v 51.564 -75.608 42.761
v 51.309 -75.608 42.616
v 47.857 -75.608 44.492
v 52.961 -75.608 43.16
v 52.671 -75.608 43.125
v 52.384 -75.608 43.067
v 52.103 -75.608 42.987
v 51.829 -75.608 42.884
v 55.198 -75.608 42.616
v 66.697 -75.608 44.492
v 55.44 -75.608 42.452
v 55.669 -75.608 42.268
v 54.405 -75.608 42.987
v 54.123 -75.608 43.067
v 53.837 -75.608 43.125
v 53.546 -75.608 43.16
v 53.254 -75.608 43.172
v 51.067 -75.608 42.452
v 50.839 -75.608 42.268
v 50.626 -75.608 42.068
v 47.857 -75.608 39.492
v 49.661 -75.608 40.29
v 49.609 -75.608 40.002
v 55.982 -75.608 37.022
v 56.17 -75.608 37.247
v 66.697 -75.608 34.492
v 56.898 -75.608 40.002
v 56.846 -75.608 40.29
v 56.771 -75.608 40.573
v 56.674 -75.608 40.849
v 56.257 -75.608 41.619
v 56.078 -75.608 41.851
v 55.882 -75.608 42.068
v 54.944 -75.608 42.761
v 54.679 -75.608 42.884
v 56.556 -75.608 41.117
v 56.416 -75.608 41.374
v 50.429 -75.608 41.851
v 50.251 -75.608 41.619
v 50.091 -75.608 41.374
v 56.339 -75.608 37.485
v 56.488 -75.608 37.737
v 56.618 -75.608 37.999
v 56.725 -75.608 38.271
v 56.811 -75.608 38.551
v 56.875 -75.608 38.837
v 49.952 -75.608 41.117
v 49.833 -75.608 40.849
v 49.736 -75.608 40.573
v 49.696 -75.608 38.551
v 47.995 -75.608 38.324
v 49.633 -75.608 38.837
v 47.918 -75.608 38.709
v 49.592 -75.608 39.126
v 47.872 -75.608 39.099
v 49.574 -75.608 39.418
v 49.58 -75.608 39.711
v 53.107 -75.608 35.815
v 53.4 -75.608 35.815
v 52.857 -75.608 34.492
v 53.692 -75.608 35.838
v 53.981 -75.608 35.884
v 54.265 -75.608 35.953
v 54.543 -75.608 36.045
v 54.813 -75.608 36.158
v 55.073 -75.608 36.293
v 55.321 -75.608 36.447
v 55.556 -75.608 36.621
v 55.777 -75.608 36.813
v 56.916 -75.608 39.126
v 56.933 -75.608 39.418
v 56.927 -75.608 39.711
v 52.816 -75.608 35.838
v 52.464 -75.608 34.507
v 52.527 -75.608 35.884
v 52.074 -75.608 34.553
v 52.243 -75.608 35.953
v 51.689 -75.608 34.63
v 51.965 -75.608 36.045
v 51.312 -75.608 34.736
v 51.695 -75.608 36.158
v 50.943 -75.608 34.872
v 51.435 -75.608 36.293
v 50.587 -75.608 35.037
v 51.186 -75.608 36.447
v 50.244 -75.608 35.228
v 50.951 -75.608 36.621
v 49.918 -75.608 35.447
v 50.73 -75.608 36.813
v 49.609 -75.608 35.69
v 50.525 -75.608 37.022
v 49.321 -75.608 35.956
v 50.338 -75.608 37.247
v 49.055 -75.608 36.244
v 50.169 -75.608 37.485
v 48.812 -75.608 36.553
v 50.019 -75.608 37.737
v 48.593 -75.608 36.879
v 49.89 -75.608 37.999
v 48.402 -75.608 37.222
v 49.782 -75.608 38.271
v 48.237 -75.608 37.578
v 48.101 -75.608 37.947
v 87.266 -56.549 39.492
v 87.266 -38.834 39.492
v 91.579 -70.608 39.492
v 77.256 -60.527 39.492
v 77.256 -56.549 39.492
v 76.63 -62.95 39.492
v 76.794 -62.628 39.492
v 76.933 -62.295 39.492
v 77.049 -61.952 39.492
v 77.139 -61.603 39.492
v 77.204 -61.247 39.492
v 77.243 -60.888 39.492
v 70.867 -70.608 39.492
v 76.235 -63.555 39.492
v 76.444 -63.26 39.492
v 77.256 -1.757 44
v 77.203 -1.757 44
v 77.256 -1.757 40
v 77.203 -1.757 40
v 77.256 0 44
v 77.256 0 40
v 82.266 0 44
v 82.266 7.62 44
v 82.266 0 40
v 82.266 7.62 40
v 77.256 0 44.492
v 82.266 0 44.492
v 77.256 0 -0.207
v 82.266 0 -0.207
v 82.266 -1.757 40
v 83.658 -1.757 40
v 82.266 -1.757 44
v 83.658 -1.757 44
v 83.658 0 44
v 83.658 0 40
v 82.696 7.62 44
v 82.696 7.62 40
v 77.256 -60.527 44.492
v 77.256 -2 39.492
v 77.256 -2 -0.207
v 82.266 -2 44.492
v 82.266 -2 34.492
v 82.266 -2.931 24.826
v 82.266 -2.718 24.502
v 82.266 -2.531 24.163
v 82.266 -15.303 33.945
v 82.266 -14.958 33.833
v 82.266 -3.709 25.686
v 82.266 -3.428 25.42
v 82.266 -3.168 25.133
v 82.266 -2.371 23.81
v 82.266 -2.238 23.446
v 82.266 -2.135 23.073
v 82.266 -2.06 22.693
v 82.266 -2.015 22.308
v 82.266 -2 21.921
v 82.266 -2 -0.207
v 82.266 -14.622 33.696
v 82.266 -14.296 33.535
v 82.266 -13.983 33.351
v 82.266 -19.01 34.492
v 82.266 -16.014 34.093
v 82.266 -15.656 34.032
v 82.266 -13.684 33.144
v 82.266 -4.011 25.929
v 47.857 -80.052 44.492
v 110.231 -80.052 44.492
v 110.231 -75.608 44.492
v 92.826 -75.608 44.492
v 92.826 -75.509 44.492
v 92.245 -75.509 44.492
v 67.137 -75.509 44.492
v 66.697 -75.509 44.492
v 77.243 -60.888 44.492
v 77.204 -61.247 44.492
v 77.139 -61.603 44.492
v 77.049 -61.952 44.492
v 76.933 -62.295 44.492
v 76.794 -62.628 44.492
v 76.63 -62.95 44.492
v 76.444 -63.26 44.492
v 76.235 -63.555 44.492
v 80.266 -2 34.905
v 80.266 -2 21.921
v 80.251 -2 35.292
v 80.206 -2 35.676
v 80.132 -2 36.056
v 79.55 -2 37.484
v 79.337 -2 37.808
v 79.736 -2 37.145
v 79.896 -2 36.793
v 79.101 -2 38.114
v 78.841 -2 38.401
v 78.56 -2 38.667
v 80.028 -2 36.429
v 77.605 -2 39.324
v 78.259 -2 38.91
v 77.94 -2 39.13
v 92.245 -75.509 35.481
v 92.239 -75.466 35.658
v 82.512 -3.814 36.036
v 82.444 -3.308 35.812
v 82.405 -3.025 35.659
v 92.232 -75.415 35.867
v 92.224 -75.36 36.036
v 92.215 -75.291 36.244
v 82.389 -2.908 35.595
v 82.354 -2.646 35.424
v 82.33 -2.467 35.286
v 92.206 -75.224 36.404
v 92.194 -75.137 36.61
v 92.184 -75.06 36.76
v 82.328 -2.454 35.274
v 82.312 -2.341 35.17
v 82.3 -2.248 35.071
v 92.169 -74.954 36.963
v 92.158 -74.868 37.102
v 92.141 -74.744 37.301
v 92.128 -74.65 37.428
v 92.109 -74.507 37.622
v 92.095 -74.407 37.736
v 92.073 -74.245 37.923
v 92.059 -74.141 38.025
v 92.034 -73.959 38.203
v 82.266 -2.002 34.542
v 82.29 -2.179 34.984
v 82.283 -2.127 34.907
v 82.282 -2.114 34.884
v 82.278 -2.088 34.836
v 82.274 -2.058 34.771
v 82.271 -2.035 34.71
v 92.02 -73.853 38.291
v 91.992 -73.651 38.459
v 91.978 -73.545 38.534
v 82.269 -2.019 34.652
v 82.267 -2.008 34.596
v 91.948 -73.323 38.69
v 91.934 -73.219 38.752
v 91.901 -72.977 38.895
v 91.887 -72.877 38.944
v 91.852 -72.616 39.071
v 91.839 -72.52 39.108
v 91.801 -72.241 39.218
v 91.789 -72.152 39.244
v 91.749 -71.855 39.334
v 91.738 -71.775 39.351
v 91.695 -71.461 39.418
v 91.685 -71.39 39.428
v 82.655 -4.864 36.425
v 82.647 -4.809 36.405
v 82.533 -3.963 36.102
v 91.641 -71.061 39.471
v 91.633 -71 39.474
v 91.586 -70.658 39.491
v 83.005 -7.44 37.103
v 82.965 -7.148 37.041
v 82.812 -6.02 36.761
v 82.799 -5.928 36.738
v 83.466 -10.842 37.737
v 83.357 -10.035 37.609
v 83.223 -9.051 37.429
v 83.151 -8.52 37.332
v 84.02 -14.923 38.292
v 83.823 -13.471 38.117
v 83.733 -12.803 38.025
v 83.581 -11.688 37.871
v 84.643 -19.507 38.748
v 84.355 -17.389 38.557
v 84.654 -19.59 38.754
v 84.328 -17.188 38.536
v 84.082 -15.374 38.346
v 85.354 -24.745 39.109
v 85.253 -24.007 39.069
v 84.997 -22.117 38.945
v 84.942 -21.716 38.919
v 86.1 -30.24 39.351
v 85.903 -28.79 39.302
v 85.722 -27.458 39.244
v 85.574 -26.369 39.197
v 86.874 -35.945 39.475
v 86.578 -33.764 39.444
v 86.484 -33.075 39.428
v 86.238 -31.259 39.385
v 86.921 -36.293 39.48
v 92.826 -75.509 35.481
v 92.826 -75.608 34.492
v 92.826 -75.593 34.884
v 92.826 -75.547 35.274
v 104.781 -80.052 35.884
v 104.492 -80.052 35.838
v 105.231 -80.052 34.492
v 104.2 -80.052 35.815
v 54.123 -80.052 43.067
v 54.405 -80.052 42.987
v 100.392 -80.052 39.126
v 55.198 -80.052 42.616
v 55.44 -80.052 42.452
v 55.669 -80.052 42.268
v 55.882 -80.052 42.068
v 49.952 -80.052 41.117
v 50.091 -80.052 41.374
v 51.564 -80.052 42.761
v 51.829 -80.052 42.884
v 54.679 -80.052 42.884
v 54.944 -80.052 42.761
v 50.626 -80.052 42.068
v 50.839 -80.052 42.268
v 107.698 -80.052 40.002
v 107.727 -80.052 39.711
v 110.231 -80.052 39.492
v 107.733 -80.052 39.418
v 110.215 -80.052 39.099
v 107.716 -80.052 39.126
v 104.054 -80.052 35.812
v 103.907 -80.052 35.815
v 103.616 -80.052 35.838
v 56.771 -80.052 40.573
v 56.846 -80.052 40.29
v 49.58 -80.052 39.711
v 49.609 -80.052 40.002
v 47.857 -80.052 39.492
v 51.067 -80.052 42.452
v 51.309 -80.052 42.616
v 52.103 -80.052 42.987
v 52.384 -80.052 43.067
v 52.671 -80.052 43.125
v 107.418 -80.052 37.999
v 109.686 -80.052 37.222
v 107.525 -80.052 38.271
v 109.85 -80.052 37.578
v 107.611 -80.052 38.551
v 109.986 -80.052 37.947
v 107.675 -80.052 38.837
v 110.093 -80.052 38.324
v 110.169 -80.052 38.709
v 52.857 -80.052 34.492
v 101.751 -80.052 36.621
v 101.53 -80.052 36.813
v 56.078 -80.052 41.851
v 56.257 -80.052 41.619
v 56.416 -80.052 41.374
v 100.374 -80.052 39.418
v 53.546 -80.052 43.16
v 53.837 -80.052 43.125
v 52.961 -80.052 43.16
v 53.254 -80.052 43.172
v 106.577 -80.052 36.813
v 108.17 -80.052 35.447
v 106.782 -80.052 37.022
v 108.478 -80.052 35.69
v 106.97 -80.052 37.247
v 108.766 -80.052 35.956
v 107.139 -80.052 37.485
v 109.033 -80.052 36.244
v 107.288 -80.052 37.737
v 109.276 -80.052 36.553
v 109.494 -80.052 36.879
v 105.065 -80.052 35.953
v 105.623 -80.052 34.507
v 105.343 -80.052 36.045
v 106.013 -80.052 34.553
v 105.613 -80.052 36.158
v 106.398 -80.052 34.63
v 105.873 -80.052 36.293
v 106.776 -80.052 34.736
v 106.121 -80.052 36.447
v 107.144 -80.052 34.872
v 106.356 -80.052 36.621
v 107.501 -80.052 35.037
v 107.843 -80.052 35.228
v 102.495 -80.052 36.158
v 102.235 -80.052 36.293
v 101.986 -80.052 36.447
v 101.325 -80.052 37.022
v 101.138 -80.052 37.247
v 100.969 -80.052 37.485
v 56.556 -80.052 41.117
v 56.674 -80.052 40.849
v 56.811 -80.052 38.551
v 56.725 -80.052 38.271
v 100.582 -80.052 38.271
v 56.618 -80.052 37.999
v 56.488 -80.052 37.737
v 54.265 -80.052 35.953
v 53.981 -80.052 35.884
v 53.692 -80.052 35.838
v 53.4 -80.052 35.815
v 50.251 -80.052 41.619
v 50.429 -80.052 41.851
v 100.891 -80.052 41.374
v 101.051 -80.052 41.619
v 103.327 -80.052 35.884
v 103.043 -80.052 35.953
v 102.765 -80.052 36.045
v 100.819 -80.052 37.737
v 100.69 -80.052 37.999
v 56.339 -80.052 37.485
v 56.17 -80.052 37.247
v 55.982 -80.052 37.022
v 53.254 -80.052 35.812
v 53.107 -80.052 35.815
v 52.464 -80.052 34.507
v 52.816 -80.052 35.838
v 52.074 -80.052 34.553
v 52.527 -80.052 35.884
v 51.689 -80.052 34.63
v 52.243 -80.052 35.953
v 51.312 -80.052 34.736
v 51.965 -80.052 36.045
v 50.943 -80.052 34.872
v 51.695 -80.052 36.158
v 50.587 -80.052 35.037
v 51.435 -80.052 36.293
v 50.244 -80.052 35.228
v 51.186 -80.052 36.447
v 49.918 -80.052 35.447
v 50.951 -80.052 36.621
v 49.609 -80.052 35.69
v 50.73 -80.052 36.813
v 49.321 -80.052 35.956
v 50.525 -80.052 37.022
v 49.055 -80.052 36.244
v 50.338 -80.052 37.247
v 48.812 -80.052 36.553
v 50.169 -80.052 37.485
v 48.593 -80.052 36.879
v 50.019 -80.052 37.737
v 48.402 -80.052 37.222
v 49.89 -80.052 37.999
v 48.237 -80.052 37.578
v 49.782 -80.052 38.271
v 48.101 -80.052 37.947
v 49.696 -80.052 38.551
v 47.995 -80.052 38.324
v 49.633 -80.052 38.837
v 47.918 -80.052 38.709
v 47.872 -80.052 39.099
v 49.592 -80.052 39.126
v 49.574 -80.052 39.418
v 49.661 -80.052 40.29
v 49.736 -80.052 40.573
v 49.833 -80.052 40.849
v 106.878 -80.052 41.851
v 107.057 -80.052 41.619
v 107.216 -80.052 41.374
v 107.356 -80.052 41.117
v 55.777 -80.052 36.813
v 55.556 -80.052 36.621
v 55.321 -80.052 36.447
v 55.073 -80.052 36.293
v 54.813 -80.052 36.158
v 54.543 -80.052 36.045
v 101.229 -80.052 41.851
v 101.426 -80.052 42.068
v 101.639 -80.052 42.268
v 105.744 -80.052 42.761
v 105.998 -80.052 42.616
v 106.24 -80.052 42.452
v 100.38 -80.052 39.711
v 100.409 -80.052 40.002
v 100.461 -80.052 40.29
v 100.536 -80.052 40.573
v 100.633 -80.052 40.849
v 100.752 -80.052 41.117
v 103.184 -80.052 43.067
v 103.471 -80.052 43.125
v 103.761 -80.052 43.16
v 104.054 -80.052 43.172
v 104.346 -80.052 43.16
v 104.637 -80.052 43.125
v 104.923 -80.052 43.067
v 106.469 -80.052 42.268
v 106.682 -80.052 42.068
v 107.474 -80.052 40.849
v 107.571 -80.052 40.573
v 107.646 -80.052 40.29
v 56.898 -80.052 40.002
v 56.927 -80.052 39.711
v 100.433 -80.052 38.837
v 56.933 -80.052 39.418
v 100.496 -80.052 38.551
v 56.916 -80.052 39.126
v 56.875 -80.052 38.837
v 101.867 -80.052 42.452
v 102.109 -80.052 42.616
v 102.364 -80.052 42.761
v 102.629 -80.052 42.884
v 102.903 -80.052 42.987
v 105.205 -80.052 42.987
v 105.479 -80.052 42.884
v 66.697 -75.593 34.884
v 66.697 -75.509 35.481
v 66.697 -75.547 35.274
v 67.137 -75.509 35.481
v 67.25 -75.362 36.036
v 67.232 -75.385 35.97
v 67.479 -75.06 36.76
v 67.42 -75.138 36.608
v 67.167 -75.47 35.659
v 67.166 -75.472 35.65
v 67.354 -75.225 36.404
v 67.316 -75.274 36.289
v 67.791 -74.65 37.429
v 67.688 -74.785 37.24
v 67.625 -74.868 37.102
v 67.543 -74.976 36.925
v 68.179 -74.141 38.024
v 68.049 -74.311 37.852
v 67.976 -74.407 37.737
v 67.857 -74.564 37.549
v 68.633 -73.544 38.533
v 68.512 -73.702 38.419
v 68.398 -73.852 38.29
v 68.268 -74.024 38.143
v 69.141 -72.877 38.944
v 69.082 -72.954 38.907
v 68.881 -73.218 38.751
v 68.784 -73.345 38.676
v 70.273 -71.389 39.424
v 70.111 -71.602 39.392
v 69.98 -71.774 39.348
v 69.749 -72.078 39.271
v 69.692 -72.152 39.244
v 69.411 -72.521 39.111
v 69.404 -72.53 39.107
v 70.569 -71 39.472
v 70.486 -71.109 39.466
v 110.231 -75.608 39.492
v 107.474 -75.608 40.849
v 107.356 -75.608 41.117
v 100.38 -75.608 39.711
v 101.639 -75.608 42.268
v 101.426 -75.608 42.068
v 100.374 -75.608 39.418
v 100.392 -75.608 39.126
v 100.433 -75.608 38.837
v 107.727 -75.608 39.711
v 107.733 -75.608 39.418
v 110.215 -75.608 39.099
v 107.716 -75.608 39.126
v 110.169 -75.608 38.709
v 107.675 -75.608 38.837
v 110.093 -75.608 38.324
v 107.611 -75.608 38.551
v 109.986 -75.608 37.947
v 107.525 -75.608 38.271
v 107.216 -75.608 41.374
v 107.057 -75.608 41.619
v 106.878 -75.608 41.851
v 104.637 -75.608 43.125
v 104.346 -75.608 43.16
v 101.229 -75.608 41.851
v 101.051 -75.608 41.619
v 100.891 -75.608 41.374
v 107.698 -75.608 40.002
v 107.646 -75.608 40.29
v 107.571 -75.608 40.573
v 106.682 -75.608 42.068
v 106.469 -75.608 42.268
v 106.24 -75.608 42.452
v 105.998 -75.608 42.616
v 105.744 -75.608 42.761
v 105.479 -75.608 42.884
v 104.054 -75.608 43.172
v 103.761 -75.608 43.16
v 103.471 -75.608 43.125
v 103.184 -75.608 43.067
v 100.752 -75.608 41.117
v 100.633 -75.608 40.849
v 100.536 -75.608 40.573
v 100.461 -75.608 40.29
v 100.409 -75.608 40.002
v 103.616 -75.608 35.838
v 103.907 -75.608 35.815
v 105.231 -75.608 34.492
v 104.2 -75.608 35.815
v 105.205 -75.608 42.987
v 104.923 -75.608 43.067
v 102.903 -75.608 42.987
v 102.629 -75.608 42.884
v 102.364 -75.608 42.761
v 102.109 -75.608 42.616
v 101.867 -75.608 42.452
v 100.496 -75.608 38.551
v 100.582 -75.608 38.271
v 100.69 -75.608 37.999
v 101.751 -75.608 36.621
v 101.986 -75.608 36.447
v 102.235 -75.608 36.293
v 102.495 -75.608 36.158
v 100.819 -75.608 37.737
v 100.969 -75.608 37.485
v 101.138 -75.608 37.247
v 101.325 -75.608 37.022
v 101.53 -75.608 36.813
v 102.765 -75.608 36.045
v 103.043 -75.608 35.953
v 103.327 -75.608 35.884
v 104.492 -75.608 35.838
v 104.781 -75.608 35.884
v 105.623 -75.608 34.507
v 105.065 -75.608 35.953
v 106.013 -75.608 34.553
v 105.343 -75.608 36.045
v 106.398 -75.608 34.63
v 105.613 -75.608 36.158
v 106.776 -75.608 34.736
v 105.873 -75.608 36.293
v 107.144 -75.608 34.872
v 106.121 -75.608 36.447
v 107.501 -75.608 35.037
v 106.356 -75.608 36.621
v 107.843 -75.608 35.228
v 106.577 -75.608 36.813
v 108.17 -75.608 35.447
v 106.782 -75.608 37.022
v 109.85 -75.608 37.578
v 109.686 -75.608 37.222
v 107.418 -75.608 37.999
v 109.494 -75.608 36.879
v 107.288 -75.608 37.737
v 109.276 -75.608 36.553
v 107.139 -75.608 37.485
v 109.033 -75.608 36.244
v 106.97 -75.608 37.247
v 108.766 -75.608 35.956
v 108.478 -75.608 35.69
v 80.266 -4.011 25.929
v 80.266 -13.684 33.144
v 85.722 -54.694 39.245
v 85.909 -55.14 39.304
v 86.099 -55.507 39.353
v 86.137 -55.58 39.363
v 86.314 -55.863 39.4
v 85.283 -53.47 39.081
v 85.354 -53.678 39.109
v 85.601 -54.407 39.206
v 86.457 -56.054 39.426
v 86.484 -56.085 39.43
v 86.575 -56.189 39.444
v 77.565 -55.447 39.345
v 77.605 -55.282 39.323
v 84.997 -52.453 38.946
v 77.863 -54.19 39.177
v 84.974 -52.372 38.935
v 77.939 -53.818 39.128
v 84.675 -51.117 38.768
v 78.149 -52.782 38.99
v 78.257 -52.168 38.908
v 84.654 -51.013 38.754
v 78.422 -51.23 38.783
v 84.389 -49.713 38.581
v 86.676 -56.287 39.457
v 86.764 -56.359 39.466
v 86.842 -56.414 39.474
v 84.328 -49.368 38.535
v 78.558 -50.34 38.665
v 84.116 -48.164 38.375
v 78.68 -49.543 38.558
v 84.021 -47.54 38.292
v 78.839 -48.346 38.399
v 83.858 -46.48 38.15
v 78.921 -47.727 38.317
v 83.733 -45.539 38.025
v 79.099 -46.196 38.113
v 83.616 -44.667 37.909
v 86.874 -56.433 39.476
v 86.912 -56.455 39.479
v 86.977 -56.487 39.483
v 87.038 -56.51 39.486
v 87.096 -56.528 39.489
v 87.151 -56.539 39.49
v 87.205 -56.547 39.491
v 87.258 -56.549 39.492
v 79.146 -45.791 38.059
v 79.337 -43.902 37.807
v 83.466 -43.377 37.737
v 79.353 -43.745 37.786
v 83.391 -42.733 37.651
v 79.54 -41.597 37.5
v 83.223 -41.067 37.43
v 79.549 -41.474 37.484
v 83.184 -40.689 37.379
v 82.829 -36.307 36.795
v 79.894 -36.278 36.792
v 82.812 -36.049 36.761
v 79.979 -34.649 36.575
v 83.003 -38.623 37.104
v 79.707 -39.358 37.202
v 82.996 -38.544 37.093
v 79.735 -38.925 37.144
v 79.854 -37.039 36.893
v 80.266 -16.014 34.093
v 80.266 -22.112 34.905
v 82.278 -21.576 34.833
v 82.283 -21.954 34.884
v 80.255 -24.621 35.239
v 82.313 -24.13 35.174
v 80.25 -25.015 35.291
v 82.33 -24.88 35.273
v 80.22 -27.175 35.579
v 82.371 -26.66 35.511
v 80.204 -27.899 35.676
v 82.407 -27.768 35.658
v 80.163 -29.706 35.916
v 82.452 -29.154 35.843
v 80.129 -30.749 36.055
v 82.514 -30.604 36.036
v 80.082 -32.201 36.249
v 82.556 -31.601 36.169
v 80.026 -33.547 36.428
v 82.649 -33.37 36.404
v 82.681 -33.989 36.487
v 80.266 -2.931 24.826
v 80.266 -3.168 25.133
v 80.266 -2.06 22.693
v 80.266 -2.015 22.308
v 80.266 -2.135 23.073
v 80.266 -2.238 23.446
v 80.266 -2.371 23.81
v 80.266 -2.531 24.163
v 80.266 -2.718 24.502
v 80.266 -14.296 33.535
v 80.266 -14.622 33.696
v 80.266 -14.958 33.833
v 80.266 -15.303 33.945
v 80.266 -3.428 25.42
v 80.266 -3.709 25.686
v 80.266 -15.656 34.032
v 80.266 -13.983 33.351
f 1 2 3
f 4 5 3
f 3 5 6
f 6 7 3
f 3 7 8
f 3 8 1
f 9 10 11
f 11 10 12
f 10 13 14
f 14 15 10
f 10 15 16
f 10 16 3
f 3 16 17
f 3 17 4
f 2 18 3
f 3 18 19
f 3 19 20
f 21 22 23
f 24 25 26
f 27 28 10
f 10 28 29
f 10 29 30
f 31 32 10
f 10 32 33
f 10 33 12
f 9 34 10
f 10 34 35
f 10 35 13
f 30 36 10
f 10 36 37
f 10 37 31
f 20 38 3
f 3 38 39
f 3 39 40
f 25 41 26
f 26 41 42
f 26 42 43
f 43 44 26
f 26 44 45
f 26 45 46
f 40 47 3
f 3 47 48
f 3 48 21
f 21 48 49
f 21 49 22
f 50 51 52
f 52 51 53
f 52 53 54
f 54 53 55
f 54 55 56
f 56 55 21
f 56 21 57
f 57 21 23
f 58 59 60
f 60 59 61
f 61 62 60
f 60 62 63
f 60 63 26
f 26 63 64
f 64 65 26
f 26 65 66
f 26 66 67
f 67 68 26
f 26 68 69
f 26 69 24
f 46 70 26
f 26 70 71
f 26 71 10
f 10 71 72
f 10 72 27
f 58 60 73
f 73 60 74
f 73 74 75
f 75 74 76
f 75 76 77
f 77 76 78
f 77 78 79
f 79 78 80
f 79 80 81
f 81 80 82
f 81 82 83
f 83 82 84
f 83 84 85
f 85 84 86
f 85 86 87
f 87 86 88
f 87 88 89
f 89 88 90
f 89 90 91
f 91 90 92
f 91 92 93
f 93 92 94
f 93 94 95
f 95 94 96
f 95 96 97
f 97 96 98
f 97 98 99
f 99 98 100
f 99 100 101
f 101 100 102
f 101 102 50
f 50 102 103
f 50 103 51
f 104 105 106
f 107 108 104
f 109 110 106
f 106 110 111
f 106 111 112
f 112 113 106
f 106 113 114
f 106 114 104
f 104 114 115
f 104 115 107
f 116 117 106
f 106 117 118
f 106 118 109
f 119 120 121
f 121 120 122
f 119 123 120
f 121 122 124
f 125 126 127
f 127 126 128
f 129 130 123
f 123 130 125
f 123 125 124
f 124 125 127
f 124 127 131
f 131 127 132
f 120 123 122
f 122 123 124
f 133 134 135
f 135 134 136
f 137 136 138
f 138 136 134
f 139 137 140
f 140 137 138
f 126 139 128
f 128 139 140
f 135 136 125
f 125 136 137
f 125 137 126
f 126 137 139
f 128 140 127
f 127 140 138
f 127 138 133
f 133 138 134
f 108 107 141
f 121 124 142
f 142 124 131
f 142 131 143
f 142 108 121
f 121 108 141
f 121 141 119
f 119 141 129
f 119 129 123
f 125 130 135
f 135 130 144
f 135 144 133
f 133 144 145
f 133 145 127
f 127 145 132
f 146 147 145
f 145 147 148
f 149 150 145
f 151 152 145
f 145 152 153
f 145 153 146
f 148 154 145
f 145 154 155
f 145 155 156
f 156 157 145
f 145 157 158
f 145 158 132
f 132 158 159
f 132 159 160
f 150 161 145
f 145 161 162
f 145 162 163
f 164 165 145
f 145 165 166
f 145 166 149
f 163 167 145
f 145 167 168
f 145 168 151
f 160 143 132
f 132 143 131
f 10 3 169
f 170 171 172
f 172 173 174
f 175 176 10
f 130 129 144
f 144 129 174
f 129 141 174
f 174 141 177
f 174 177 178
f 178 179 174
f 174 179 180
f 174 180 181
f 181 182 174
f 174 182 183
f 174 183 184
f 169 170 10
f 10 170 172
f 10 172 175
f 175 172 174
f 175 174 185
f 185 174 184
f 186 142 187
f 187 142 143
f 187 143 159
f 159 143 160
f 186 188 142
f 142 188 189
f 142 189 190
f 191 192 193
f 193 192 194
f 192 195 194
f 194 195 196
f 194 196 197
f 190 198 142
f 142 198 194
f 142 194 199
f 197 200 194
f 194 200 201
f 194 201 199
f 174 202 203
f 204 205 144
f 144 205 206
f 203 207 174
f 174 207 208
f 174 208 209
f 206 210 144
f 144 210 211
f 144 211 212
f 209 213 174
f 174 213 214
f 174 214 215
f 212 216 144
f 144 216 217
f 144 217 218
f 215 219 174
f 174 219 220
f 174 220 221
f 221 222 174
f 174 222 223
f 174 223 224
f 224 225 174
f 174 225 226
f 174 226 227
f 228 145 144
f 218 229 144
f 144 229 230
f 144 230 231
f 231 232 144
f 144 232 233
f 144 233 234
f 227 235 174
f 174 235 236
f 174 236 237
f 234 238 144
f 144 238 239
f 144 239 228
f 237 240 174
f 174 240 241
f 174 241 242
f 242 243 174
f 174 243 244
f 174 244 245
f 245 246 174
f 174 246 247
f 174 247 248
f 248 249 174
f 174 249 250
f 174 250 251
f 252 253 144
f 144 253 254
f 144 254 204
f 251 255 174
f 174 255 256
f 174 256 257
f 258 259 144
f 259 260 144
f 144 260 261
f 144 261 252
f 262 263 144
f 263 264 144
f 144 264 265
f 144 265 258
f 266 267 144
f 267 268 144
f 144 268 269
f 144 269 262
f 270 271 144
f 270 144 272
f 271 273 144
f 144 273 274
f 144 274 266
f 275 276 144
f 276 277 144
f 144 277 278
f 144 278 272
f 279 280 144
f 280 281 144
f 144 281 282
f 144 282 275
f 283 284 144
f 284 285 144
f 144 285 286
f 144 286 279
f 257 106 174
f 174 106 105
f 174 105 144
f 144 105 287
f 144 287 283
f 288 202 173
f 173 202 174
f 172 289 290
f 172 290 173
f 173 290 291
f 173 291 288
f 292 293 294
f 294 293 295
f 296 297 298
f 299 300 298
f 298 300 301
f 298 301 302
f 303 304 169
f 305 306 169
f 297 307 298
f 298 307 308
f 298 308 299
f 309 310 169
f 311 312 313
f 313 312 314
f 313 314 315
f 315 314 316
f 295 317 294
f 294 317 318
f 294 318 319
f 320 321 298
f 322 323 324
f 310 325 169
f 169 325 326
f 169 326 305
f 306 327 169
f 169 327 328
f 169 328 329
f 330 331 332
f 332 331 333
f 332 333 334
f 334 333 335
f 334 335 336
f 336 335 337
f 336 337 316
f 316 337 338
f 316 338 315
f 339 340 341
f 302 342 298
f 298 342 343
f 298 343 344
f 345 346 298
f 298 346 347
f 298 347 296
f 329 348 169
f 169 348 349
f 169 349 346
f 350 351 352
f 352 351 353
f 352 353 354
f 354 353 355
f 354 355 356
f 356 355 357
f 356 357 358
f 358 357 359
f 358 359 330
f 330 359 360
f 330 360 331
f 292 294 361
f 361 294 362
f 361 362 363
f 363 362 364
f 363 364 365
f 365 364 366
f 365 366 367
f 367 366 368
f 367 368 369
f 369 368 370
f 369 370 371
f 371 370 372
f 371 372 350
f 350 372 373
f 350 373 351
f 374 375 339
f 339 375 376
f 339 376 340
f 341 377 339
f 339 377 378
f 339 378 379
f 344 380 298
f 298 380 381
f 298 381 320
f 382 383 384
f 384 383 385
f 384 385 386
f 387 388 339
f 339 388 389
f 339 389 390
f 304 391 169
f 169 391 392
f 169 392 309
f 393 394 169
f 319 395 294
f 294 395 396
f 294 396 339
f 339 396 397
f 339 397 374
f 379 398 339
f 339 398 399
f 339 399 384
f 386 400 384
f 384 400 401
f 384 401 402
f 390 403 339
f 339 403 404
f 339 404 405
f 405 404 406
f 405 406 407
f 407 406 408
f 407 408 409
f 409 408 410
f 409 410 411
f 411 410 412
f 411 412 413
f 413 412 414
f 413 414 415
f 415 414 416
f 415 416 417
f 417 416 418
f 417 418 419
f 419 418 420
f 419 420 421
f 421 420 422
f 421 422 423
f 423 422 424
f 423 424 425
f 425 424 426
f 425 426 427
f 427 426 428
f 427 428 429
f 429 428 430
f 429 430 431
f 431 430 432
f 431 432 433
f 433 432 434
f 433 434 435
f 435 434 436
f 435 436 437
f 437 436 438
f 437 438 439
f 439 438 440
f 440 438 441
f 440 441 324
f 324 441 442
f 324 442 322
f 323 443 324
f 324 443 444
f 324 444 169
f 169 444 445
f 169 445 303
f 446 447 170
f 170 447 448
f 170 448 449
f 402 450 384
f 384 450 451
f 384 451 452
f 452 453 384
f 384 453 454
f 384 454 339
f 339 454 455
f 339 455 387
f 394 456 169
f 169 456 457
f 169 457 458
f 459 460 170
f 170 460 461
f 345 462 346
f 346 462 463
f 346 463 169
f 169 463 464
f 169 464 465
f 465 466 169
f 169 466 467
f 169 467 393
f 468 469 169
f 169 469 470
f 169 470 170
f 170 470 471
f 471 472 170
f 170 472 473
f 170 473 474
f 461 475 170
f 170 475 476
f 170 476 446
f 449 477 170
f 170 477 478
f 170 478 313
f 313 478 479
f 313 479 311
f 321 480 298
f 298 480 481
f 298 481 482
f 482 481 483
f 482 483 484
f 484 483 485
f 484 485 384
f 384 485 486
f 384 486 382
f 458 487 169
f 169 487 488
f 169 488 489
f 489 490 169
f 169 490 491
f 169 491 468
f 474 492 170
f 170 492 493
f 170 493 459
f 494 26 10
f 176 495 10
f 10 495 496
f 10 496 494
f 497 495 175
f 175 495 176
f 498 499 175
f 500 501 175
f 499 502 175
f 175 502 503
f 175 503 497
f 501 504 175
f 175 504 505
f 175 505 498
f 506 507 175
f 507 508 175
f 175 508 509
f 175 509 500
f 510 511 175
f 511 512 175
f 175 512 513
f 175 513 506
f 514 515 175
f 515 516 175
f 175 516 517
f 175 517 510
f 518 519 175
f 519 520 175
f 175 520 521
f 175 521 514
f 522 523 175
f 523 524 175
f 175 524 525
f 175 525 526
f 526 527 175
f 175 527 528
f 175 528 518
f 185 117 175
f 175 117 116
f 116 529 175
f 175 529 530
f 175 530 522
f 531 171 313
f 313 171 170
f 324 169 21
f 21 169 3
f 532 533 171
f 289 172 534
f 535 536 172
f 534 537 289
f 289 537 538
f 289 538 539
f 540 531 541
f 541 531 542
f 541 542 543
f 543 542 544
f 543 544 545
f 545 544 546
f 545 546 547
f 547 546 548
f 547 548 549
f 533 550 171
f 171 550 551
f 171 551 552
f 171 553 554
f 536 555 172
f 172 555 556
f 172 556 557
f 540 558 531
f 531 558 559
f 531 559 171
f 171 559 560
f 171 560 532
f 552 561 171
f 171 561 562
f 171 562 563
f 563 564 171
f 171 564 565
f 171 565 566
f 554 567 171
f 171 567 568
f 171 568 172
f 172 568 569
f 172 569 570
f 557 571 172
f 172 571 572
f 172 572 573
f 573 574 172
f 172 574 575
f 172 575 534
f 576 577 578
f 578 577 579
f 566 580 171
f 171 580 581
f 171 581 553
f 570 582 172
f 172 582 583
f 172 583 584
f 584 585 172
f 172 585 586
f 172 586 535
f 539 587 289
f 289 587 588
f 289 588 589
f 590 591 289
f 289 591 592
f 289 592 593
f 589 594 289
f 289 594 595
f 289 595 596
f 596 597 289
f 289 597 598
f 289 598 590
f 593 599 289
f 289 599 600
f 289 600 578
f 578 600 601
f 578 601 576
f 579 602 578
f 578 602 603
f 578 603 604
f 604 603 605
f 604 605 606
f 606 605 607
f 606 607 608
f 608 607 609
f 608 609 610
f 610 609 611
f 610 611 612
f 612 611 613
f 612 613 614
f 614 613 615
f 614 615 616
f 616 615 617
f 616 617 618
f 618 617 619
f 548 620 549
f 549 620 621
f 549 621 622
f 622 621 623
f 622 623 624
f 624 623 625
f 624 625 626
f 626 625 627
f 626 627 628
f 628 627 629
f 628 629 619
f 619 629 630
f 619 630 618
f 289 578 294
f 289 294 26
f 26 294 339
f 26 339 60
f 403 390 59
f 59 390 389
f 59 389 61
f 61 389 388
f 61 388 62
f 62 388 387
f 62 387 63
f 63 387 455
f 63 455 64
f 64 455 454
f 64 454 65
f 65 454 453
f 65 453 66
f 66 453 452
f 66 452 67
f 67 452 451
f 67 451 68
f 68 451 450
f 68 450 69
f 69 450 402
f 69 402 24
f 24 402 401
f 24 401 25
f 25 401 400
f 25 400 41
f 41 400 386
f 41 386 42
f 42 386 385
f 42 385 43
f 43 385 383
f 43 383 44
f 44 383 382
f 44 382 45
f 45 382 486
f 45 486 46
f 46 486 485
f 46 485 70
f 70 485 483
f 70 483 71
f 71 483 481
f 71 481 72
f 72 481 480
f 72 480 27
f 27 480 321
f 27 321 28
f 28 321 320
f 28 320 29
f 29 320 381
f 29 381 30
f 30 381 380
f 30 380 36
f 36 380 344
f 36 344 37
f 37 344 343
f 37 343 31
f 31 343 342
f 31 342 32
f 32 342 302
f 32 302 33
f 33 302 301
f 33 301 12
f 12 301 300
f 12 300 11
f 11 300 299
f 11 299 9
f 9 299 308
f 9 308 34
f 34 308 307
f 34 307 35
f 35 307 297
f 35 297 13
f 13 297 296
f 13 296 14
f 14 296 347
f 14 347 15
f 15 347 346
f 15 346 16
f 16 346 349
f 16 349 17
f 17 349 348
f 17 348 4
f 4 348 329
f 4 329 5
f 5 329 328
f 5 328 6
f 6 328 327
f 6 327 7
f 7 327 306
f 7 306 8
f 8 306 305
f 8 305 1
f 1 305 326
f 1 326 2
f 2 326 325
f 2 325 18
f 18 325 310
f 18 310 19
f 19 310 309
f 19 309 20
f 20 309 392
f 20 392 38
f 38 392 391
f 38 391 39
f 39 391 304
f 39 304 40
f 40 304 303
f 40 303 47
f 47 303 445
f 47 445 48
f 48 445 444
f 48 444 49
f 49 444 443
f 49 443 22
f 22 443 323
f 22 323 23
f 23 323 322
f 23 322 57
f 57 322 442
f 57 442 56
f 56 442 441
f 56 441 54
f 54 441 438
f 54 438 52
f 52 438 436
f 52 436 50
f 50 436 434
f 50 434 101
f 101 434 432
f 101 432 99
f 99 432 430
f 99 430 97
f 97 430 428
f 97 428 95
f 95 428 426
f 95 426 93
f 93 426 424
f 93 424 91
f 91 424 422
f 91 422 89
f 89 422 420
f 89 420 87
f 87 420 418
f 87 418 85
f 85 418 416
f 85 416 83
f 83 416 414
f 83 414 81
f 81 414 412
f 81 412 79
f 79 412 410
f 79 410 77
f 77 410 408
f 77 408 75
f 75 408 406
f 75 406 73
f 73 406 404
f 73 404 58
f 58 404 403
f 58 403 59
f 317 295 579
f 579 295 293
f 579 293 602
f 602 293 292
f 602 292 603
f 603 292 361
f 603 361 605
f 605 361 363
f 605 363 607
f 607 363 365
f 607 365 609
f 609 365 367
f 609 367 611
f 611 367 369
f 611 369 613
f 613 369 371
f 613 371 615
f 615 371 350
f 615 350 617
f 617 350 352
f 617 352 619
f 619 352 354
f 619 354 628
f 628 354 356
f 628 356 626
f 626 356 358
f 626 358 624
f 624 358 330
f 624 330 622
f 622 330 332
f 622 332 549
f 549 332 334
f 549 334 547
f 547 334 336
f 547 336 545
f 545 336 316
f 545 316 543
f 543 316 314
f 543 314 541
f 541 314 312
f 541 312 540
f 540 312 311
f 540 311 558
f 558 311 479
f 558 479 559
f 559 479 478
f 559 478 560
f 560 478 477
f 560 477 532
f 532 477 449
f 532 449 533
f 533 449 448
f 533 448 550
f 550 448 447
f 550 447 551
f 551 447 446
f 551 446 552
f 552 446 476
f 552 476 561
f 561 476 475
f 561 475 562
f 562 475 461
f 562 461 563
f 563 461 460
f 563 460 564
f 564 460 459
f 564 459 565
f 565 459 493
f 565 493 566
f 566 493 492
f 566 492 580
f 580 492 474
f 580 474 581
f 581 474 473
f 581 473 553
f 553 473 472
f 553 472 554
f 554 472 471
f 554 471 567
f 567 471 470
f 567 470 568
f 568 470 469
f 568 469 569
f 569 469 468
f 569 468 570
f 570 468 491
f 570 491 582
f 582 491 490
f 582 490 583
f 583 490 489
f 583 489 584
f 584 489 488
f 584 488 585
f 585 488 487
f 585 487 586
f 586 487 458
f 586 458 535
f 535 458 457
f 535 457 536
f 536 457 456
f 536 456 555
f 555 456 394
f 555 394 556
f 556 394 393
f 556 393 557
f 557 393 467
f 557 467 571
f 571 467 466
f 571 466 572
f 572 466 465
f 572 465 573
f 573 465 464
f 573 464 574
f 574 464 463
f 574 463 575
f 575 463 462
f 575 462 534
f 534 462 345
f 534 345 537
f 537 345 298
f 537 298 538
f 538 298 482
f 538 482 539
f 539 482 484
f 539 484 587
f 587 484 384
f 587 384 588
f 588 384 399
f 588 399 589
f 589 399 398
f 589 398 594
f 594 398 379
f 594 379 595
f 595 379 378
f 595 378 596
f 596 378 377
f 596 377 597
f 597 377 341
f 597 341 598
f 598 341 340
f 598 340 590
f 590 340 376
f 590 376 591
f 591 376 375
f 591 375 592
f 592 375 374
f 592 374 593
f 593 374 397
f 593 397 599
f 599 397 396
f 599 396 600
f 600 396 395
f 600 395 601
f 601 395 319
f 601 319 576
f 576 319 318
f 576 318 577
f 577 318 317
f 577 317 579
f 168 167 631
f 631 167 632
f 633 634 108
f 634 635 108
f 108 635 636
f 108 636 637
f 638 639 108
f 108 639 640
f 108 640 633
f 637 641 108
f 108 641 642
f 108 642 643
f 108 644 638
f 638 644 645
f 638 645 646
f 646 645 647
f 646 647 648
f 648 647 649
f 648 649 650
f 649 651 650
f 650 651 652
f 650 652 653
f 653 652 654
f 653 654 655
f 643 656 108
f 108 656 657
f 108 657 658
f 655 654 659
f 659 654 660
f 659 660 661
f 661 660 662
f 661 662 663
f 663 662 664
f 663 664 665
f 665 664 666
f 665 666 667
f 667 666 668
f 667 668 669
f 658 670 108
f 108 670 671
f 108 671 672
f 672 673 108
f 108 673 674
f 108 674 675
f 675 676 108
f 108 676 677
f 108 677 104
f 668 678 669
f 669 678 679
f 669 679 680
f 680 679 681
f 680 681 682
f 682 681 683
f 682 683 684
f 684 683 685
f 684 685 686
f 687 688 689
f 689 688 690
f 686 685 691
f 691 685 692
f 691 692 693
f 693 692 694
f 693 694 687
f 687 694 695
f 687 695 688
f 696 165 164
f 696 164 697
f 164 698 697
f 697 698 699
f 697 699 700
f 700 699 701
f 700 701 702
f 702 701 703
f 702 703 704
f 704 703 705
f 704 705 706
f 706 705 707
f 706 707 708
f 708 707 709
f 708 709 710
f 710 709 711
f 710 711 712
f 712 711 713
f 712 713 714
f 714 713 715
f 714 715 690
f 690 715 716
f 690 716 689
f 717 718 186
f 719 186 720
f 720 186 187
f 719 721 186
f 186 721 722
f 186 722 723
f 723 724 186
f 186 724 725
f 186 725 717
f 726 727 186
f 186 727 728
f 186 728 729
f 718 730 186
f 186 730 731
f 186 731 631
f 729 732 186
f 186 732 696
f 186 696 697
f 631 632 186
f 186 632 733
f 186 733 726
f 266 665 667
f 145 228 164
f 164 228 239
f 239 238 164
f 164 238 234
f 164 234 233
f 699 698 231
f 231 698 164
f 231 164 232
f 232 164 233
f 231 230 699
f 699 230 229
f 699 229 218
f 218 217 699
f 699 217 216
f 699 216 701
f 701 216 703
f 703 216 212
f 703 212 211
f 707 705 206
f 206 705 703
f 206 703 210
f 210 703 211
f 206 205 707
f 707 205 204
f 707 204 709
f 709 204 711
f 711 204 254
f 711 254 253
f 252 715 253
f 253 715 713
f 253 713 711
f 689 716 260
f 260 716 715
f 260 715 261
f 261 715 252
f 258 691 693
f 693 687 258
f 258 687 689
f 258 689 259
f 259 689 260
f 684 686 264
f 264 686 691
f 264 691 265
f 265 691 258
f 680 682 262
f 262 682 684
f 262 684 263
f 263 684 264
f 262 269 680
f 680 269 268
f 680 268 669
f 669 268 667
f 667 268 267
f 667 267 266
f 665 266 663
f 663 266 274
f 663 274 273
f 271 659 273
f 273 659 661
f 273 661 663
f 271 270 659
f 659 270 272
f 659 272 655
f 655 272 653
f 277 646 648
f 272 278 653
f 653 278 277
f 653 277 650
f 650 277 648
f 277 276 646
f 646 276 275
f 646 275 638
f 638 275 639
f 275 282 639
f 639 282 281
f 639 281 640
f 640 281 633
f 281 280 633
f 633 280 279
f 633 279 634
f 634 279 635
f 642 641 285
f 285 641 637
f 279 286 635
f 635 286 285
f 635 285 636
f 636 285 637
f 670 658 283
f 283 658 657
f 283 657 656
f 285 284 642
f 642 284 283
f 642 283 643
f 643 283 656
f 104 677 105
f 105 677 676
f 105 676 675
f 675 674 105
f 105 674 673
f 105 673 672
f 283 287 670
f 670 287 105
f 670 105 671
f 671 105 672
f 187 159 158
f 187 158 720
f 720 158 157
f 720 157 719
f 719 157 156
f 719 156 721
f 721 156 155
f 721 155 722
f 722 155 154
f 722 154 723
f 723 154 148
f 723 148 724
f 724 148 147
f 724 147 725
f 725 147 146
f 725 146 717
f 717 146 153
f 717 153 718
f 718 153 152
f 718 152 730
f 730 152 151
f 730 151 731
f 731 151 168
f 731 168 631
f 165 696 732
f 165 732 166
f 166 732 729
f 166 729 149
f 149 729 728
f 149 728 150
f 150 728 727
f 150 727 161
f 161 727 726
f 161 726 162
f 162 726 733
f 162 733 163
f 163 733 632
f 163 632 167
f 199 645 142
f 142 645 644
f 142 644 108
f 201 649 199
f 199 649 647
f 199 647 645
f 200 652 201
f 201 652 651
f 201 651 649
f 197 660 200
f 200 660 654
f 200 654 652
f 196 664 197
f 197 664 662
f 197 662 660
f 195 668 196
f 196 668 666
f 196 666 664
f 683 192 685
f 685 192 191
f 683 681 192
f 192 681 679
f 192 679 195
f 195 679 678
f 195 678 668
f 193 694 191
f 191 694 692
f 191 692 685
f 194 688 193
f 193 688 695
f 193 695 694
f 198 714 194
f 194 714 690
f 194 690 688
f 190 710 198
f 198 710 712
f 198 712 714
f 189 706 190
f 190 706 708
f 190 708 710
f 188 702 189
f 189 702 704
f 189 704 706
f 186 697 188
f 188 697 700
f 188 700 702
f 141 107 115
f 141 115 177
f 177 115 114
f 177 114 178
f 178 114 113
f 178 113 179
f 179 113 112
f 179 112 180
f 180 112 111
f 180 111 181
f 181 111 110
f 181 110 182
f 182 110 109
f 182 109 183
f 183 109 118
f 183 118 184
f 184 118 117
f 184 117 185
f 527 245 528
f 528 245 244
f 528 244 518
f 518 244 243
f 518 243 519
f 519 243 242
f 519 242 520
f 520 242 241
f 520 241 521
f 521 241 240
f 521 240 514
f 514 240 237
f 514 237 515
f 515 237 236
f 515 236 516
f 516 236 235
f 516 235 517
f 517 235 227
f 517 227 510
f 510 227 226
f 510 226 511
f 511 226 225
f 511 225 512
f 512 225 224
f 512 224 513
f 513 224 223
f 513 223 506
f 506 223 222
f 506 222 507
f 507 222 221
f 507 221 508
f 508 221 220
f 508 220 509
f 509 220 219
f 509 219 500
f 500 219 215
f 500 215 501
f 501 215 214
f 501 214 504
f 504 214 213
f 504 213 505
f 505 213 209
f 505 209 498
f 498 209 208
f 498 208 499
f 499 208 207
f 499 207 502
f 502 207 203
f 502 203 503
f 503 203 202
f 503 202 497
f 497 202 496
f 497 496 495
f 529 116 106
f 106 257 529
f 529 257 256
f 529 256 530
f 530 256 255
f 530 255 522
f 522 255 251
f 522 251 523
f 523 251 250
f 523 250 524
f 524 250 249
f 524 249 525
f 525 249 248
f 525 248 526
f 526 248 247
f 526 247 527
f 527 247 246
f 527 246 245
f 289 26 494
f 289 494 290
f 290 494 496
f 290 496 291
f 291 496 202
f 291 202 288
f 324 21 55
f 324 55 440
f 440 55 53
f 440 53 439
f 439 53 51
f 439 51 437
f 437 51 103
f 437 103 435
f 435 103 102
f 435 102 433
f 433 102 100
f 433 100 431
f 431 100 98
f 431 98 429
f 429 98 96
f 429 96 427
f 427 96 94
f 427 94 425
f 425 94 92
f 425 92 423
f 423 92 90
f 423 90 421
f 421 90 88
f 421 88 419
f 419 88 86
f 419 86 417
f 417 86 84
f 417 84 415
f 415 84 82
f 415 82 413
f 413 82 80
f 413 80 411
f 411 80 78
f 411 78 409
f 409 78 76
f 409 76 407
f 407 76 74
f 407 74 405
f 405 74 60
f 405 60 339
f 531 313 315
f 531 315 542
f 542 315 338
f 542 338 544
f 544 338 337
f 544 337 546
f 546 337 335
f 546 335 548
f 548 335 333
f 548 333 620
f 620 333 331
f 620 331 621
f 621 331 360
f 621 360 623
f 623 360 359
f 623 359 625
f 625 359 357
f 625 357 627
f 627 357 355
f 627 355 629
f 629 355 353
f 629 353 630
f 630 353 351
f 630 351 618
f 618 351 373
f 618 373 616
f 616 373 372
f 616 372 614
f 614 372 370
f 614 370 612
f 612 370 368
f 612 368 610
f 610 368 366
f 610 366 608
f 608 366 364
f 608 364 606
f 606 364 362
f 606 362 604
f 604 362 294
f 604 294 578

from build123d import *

# Parameters (mm, degrees)
BOSS_EXTRUDE3_START = 40
BOSS_EXTRUDE3_DEPTH = 4
SKETCH3_W           = 5.009740145
SKETCH3_H           = 44.698182912
BOSS_EXTRUDE4_DEPTH = 2
BOSS_EXTRUDE5_DEPTH = 5
SKETCH7_W           = 62.374089496
SKETCH7_H           = 4.444300198
BOSS_EXTRUDE6_DEPTH = 10
SKETCH8_R           = 3.68
CUT_EXTRUDE1_DEPTH  = 10
BOSS_EXTRUDE7_DEPTH = 2
FILLET1_R           = 5


with BuildPart() as part:
    # Sketch4 → Boss-Extrude3 (new body)
    with BuildSketch(Plane.XY.offset(BOSS_EXTRUDE3_START)):
        Polygon((82.266178214, 7.62), (82.696382378, 7.62), (83.657798078, 0), (83.657798078, -1.756584044), (77.202578377, -1.756584044), (77.256438069, 0), (82.266178214, 0), align=None)
    extrude(amount=BOSS_EXTRUDE3_DEPTH)

    # Sketch3 → Boss-Extrude4 (add)
    with BuildSketch(Plane(origin=(0, 0, 0), x_dir=(1, 0, 0), z_dir=(0, 1, 0))):
        with Locations((79.761308141, -22.142555967)):
            Rectangle(SKETCH3_W, SKETCH3_H)
    extrude(amount=-BOSS_EXTRUDE4_DEPTH)

    # Sketch6 → Boss-Extrude5 (add)
    with BuildSketch(Plane.XY.offset(44.491647423)):
        Polygon((77.256438069, -2), (77.256438069, -3.040359502), (77.256438069, -62.213081923), (67.137259184, -75.509161123), (66.697097711, -75.509161123), (66.697097711, -80.05237461), (92.826264311, -80.05237461), (92.826264311, -75.509161123), (92.244616978, -75.509161123), (82.266178214, -2), align=None)
    extrude(amount=-BOSS_EXTRUDE5_DEPTH)

    # Sketch7 → Boss-Extrude6 (add)
    with BuildSketch(Plane.XY.offset(44.491647423)):
        with Locations((79.043692129, -77.830224511)):
            Rectangle(SKETCH7_W, SKETCH7_H)
    extrude(amount=-BOSS_EXTRUDE6_DEPTH)

    # Sketch8 → Cut-Extrude1 (cut)
    with BuildSketch(Plane(origin=(0, -75.608074412, 0), x_dir=(1, 0, 0), z_dir=(0, 1, 0))):
        with Locations(Location((53.253735199, -39.491647423, 0), (0, 0, 270))):
            Circle(SKETCH8_R)
        with Locations(Location((104.053735199, -39.491647423, 0), (0, 0, 270))):
            Circle(SKETCH8_R)
    extrude(amount=-CUT_EXTRUDE1_DEPTH, mode=Mode.SUBTRACT)

    # Sketch9 → Boss-Extrude7 (add)
    with BuildSketch(Plane(origin=(82.266178214, 0, 0), x_dir=(0, 0, -1), z_dir=(1, 0, 0))):
        Polygon((-24.429530022, -2), (-33.920992071, -14.725861543), (-39.491647423, -56.549410739), (-39.491647423, -2), align=None)
    extrude(amount=-BOSS_EXTRUDE7_DEPTH)

    # Fillet1
    # the kernel refuses this fillet: 5 mm, written as the material it adds along each edge
    with BuildSketch(Plane(origin=(82.266178214, -69.049410739, 39.491647423), x_dir=(0, 0, -1), z_dir=(0, 1, 0))) as fillet1_piece_1_section:
        with BuildLine():
            CenterArc((FILLET1_R, -FILLET1_R), FILLET1_R, 90, 90)
            Line((0, -FILLET1_R), (0, 0))
            Line((0, 0), (FILLET1_R, 0))
        make_face()
    fillet1_piece_1 = extrude(amount=79.549410739, mode=Mode.PRIVATE)
    fillet1_piece_1 = split(fillet1_piece_1, bisect_by=Plane(origin=(91.203068258, -67.836280176, 39.491647423), z_dir=(-0.9909121640469413, -0.13451053172078273, 0)), keep=Keep.TOP, mode=Mode.PRIVATE)
    fillet1_piece_1 = split(fillet1_piece_1, bisect_by=Plane(origin=(82.266178214, -68.831517537, 41.127553158), z_dir=(0, 0.13202823988691362, 0.9912459552867612)), keep=Keep.TOP, mode=Mode.PRIVATE)
    add(fillet1_piece_1)
    with BuildSketch(Plane(origin=(82.266178214, -2, 24.429530022), x_dir=(0, 0, -1), z_dir=(-1, 0, 0))) as fillet1_piece_2:
        with BuildLine():
            CenterArc((FILLET1_R * 0.501668266059, FILLET1_R), FILLET1_R, 216.717064356, 53.282935644)
            Line((-FILLET1_R * 0.299929352407, FILLET1_R * 0.402136087333), (0, 0))
            Line((0, 0), (FILLET1_R * 0.501668266059, 0))
        make_face()
    extrude(amount=2)
    with BuildSketch(Plane(origin=(82.266178214, -14.725861543, 33.920992071), x_dir=(0, 0.8015976184662758, -0.5978639126667499), z_dir=(-1, 0, 0))) as fillet1_piece_3:
        with BuildLine():
            CenterArc((FILLET1_R * 0.259830628617, FILLET1_R), FILLET1_R, 240.869747944, 29.130252056)
            Line((-FILLET1_R * 0.226966033962, FILLET1_R * 0.126484682847), (0, 0))
            Line((0, 0), (FILLET1_R * 0.259830628617, 0))
        make_face()
    extrude(amount=2)
    with BuildSketch(Plane(origin=(80.266178214, -68.016446568, 39.491647423), x_dir=(-1, 0, 0), z_dir=(0, 1, 0))) as fillet1_piece_4_section:
        with BuildLine():
            CenterArc((5, -4.586814331), FILLET1_R, 113.456454131, 66.543545869)
            Line((0, -4.586814331), (0, 0))
            Line((0, 0), (3.009740145, 0))
        make_face()
    fillet1_piece_4 = extrude(amount=66.016446568, mode=Mode.PRIVATE)
    fillet1_piece_4 = split(fillet1_piece_4, bisect_by=Plane(origin=(80.266178214, -67.816559436, 40.992366597), z_dir=(0, 0.13202823988691362, 0.9912459552867612)), keep=Keep.TOP, mode=Mode.PRIVATE)
    add(fillet1_piece_4)
    with BuildSketch(Plane(origin=(77.256438069, -62.213081923, 44.491647423), x_dir=(0, 1, 0), z_dir=(0, 0, -1))) as fillet1_piece_5:
        with BuildLine():
            CenterArc((FILLET1_R * 0.337251278502, -FILLET1_R), FILLET1_R, 90, 37.273488701)
            Line((-FILLET1_R * 0.268368983809, -FILLET1_R * 0.204246207751), (0, 0))
            Line((0, 0), (FILLET1_R * 0.337251278502, 0))
        make_face()
    extrude(amount=5)
    with BuildSketch(Plane(origin=(66.697097711, -75.608074412, 39.491647423), x_dir=(0, 1, 0), z_dir=(1, 0, 0))) as fillet1_piece_6_section:
        with BuildLine():
            CenterArc((FILLET1_R, -FILLET1_R), FILLET1_R, 90, 90)
            Line((0, -FILLET1_R), (0, 0))
            Line((0, 0), (FILLET1_R, 0))
        make_face()
    fillet1_piece_6 = extrude(amount=26.1291666, mode=Mode.PRIVATE)
    fillet1_piece_6 = split(fillet1_piece_6, bisect_by=Plane(origin=(66.697097711, -75.509161123, 39.491647423), z_dir=(0, -1, 0)), keep=Keep.TOP, mode=Mode.PRIVATE)
    add(fillet1_piece_6)
    with BuildSketch(Plane(origin=(54.197097711, -75.608074412, 39.491647423), x_dir=(0, 1, 0), z_dir=(1, 0, 0))) as fillet1_piece_7_section:
        with BuildLine():
            CenterArc((FILLET1_R, -FILLET1_R), FILLET1_R, 90, 90)
            Line((0, -FILLET1_R), (0, 0))
            Line((0, 0), (FILLET1_R, 0))
        make_face()
    fillet1_piece_7 = extrude(amount=51.1291666, mode=Mode.PRIVATE)
    fillet1_piece_7 = split(fillet1_piece_7, bisect_by=Plane(origin=(91.569404015, -70.535002372, 39.491647423), z_dir=(-0.9909121640469413, -0.13451053172078273, 0)), keep=Keep.TOP, mode=Mode.PRIVATE)
    fillet1_piece_7 = split(fillet1_piece_7, bisect_by=Plane(origin=(62.343451037, -81.807977807, 39.491647423), z_dir=(0.7957537922487953, -0.6056202623110138, 0)), keep=Keep.TOP, mode=Mode.PRIVATE)
    add(fillet1_piece_7)
    # the kernel refuses this fillet: 5 mm, written as the material it takes off along each edge
    with BuildSketch(Plane(origin=(47.856647381, -92.55237461, 34.491647423), x_dir=(1, 0, 0), z_dir=(0, 1, 0))) as fillet1_2_piece_1:
        with BuildLine():
            CenterArc((FILLET1_R, -FILLET1_R), FILLET1_R, 90, 90)
            Line((0, -FILLET1_R), (0, 0))
            Line((0, 0), (FILLET1_R, 0))
        make_face()
    extrude(amount=29.444300198, mode=Mode.SUBTRACT)
    with BuildSketch(Plane(origin=(110.230736877, -63.108074412, 34.491647423), x_dir=(0, 0, 1), z_dir=(0, -1, 0))) as fillet1_2_piece_2:
        with BuildLine():
            CenterArc((FILLET1_R, FILLET1_R), FILLET1_R, 180, 90)
            Line((0, FILLET1_R), (0, 0))
            Line((0, 0), (FILLET1_R, 0))
        make_face()
    extrude(amount=29.444300198, mode=Mode.SUBTRACT)


solid = part.part
